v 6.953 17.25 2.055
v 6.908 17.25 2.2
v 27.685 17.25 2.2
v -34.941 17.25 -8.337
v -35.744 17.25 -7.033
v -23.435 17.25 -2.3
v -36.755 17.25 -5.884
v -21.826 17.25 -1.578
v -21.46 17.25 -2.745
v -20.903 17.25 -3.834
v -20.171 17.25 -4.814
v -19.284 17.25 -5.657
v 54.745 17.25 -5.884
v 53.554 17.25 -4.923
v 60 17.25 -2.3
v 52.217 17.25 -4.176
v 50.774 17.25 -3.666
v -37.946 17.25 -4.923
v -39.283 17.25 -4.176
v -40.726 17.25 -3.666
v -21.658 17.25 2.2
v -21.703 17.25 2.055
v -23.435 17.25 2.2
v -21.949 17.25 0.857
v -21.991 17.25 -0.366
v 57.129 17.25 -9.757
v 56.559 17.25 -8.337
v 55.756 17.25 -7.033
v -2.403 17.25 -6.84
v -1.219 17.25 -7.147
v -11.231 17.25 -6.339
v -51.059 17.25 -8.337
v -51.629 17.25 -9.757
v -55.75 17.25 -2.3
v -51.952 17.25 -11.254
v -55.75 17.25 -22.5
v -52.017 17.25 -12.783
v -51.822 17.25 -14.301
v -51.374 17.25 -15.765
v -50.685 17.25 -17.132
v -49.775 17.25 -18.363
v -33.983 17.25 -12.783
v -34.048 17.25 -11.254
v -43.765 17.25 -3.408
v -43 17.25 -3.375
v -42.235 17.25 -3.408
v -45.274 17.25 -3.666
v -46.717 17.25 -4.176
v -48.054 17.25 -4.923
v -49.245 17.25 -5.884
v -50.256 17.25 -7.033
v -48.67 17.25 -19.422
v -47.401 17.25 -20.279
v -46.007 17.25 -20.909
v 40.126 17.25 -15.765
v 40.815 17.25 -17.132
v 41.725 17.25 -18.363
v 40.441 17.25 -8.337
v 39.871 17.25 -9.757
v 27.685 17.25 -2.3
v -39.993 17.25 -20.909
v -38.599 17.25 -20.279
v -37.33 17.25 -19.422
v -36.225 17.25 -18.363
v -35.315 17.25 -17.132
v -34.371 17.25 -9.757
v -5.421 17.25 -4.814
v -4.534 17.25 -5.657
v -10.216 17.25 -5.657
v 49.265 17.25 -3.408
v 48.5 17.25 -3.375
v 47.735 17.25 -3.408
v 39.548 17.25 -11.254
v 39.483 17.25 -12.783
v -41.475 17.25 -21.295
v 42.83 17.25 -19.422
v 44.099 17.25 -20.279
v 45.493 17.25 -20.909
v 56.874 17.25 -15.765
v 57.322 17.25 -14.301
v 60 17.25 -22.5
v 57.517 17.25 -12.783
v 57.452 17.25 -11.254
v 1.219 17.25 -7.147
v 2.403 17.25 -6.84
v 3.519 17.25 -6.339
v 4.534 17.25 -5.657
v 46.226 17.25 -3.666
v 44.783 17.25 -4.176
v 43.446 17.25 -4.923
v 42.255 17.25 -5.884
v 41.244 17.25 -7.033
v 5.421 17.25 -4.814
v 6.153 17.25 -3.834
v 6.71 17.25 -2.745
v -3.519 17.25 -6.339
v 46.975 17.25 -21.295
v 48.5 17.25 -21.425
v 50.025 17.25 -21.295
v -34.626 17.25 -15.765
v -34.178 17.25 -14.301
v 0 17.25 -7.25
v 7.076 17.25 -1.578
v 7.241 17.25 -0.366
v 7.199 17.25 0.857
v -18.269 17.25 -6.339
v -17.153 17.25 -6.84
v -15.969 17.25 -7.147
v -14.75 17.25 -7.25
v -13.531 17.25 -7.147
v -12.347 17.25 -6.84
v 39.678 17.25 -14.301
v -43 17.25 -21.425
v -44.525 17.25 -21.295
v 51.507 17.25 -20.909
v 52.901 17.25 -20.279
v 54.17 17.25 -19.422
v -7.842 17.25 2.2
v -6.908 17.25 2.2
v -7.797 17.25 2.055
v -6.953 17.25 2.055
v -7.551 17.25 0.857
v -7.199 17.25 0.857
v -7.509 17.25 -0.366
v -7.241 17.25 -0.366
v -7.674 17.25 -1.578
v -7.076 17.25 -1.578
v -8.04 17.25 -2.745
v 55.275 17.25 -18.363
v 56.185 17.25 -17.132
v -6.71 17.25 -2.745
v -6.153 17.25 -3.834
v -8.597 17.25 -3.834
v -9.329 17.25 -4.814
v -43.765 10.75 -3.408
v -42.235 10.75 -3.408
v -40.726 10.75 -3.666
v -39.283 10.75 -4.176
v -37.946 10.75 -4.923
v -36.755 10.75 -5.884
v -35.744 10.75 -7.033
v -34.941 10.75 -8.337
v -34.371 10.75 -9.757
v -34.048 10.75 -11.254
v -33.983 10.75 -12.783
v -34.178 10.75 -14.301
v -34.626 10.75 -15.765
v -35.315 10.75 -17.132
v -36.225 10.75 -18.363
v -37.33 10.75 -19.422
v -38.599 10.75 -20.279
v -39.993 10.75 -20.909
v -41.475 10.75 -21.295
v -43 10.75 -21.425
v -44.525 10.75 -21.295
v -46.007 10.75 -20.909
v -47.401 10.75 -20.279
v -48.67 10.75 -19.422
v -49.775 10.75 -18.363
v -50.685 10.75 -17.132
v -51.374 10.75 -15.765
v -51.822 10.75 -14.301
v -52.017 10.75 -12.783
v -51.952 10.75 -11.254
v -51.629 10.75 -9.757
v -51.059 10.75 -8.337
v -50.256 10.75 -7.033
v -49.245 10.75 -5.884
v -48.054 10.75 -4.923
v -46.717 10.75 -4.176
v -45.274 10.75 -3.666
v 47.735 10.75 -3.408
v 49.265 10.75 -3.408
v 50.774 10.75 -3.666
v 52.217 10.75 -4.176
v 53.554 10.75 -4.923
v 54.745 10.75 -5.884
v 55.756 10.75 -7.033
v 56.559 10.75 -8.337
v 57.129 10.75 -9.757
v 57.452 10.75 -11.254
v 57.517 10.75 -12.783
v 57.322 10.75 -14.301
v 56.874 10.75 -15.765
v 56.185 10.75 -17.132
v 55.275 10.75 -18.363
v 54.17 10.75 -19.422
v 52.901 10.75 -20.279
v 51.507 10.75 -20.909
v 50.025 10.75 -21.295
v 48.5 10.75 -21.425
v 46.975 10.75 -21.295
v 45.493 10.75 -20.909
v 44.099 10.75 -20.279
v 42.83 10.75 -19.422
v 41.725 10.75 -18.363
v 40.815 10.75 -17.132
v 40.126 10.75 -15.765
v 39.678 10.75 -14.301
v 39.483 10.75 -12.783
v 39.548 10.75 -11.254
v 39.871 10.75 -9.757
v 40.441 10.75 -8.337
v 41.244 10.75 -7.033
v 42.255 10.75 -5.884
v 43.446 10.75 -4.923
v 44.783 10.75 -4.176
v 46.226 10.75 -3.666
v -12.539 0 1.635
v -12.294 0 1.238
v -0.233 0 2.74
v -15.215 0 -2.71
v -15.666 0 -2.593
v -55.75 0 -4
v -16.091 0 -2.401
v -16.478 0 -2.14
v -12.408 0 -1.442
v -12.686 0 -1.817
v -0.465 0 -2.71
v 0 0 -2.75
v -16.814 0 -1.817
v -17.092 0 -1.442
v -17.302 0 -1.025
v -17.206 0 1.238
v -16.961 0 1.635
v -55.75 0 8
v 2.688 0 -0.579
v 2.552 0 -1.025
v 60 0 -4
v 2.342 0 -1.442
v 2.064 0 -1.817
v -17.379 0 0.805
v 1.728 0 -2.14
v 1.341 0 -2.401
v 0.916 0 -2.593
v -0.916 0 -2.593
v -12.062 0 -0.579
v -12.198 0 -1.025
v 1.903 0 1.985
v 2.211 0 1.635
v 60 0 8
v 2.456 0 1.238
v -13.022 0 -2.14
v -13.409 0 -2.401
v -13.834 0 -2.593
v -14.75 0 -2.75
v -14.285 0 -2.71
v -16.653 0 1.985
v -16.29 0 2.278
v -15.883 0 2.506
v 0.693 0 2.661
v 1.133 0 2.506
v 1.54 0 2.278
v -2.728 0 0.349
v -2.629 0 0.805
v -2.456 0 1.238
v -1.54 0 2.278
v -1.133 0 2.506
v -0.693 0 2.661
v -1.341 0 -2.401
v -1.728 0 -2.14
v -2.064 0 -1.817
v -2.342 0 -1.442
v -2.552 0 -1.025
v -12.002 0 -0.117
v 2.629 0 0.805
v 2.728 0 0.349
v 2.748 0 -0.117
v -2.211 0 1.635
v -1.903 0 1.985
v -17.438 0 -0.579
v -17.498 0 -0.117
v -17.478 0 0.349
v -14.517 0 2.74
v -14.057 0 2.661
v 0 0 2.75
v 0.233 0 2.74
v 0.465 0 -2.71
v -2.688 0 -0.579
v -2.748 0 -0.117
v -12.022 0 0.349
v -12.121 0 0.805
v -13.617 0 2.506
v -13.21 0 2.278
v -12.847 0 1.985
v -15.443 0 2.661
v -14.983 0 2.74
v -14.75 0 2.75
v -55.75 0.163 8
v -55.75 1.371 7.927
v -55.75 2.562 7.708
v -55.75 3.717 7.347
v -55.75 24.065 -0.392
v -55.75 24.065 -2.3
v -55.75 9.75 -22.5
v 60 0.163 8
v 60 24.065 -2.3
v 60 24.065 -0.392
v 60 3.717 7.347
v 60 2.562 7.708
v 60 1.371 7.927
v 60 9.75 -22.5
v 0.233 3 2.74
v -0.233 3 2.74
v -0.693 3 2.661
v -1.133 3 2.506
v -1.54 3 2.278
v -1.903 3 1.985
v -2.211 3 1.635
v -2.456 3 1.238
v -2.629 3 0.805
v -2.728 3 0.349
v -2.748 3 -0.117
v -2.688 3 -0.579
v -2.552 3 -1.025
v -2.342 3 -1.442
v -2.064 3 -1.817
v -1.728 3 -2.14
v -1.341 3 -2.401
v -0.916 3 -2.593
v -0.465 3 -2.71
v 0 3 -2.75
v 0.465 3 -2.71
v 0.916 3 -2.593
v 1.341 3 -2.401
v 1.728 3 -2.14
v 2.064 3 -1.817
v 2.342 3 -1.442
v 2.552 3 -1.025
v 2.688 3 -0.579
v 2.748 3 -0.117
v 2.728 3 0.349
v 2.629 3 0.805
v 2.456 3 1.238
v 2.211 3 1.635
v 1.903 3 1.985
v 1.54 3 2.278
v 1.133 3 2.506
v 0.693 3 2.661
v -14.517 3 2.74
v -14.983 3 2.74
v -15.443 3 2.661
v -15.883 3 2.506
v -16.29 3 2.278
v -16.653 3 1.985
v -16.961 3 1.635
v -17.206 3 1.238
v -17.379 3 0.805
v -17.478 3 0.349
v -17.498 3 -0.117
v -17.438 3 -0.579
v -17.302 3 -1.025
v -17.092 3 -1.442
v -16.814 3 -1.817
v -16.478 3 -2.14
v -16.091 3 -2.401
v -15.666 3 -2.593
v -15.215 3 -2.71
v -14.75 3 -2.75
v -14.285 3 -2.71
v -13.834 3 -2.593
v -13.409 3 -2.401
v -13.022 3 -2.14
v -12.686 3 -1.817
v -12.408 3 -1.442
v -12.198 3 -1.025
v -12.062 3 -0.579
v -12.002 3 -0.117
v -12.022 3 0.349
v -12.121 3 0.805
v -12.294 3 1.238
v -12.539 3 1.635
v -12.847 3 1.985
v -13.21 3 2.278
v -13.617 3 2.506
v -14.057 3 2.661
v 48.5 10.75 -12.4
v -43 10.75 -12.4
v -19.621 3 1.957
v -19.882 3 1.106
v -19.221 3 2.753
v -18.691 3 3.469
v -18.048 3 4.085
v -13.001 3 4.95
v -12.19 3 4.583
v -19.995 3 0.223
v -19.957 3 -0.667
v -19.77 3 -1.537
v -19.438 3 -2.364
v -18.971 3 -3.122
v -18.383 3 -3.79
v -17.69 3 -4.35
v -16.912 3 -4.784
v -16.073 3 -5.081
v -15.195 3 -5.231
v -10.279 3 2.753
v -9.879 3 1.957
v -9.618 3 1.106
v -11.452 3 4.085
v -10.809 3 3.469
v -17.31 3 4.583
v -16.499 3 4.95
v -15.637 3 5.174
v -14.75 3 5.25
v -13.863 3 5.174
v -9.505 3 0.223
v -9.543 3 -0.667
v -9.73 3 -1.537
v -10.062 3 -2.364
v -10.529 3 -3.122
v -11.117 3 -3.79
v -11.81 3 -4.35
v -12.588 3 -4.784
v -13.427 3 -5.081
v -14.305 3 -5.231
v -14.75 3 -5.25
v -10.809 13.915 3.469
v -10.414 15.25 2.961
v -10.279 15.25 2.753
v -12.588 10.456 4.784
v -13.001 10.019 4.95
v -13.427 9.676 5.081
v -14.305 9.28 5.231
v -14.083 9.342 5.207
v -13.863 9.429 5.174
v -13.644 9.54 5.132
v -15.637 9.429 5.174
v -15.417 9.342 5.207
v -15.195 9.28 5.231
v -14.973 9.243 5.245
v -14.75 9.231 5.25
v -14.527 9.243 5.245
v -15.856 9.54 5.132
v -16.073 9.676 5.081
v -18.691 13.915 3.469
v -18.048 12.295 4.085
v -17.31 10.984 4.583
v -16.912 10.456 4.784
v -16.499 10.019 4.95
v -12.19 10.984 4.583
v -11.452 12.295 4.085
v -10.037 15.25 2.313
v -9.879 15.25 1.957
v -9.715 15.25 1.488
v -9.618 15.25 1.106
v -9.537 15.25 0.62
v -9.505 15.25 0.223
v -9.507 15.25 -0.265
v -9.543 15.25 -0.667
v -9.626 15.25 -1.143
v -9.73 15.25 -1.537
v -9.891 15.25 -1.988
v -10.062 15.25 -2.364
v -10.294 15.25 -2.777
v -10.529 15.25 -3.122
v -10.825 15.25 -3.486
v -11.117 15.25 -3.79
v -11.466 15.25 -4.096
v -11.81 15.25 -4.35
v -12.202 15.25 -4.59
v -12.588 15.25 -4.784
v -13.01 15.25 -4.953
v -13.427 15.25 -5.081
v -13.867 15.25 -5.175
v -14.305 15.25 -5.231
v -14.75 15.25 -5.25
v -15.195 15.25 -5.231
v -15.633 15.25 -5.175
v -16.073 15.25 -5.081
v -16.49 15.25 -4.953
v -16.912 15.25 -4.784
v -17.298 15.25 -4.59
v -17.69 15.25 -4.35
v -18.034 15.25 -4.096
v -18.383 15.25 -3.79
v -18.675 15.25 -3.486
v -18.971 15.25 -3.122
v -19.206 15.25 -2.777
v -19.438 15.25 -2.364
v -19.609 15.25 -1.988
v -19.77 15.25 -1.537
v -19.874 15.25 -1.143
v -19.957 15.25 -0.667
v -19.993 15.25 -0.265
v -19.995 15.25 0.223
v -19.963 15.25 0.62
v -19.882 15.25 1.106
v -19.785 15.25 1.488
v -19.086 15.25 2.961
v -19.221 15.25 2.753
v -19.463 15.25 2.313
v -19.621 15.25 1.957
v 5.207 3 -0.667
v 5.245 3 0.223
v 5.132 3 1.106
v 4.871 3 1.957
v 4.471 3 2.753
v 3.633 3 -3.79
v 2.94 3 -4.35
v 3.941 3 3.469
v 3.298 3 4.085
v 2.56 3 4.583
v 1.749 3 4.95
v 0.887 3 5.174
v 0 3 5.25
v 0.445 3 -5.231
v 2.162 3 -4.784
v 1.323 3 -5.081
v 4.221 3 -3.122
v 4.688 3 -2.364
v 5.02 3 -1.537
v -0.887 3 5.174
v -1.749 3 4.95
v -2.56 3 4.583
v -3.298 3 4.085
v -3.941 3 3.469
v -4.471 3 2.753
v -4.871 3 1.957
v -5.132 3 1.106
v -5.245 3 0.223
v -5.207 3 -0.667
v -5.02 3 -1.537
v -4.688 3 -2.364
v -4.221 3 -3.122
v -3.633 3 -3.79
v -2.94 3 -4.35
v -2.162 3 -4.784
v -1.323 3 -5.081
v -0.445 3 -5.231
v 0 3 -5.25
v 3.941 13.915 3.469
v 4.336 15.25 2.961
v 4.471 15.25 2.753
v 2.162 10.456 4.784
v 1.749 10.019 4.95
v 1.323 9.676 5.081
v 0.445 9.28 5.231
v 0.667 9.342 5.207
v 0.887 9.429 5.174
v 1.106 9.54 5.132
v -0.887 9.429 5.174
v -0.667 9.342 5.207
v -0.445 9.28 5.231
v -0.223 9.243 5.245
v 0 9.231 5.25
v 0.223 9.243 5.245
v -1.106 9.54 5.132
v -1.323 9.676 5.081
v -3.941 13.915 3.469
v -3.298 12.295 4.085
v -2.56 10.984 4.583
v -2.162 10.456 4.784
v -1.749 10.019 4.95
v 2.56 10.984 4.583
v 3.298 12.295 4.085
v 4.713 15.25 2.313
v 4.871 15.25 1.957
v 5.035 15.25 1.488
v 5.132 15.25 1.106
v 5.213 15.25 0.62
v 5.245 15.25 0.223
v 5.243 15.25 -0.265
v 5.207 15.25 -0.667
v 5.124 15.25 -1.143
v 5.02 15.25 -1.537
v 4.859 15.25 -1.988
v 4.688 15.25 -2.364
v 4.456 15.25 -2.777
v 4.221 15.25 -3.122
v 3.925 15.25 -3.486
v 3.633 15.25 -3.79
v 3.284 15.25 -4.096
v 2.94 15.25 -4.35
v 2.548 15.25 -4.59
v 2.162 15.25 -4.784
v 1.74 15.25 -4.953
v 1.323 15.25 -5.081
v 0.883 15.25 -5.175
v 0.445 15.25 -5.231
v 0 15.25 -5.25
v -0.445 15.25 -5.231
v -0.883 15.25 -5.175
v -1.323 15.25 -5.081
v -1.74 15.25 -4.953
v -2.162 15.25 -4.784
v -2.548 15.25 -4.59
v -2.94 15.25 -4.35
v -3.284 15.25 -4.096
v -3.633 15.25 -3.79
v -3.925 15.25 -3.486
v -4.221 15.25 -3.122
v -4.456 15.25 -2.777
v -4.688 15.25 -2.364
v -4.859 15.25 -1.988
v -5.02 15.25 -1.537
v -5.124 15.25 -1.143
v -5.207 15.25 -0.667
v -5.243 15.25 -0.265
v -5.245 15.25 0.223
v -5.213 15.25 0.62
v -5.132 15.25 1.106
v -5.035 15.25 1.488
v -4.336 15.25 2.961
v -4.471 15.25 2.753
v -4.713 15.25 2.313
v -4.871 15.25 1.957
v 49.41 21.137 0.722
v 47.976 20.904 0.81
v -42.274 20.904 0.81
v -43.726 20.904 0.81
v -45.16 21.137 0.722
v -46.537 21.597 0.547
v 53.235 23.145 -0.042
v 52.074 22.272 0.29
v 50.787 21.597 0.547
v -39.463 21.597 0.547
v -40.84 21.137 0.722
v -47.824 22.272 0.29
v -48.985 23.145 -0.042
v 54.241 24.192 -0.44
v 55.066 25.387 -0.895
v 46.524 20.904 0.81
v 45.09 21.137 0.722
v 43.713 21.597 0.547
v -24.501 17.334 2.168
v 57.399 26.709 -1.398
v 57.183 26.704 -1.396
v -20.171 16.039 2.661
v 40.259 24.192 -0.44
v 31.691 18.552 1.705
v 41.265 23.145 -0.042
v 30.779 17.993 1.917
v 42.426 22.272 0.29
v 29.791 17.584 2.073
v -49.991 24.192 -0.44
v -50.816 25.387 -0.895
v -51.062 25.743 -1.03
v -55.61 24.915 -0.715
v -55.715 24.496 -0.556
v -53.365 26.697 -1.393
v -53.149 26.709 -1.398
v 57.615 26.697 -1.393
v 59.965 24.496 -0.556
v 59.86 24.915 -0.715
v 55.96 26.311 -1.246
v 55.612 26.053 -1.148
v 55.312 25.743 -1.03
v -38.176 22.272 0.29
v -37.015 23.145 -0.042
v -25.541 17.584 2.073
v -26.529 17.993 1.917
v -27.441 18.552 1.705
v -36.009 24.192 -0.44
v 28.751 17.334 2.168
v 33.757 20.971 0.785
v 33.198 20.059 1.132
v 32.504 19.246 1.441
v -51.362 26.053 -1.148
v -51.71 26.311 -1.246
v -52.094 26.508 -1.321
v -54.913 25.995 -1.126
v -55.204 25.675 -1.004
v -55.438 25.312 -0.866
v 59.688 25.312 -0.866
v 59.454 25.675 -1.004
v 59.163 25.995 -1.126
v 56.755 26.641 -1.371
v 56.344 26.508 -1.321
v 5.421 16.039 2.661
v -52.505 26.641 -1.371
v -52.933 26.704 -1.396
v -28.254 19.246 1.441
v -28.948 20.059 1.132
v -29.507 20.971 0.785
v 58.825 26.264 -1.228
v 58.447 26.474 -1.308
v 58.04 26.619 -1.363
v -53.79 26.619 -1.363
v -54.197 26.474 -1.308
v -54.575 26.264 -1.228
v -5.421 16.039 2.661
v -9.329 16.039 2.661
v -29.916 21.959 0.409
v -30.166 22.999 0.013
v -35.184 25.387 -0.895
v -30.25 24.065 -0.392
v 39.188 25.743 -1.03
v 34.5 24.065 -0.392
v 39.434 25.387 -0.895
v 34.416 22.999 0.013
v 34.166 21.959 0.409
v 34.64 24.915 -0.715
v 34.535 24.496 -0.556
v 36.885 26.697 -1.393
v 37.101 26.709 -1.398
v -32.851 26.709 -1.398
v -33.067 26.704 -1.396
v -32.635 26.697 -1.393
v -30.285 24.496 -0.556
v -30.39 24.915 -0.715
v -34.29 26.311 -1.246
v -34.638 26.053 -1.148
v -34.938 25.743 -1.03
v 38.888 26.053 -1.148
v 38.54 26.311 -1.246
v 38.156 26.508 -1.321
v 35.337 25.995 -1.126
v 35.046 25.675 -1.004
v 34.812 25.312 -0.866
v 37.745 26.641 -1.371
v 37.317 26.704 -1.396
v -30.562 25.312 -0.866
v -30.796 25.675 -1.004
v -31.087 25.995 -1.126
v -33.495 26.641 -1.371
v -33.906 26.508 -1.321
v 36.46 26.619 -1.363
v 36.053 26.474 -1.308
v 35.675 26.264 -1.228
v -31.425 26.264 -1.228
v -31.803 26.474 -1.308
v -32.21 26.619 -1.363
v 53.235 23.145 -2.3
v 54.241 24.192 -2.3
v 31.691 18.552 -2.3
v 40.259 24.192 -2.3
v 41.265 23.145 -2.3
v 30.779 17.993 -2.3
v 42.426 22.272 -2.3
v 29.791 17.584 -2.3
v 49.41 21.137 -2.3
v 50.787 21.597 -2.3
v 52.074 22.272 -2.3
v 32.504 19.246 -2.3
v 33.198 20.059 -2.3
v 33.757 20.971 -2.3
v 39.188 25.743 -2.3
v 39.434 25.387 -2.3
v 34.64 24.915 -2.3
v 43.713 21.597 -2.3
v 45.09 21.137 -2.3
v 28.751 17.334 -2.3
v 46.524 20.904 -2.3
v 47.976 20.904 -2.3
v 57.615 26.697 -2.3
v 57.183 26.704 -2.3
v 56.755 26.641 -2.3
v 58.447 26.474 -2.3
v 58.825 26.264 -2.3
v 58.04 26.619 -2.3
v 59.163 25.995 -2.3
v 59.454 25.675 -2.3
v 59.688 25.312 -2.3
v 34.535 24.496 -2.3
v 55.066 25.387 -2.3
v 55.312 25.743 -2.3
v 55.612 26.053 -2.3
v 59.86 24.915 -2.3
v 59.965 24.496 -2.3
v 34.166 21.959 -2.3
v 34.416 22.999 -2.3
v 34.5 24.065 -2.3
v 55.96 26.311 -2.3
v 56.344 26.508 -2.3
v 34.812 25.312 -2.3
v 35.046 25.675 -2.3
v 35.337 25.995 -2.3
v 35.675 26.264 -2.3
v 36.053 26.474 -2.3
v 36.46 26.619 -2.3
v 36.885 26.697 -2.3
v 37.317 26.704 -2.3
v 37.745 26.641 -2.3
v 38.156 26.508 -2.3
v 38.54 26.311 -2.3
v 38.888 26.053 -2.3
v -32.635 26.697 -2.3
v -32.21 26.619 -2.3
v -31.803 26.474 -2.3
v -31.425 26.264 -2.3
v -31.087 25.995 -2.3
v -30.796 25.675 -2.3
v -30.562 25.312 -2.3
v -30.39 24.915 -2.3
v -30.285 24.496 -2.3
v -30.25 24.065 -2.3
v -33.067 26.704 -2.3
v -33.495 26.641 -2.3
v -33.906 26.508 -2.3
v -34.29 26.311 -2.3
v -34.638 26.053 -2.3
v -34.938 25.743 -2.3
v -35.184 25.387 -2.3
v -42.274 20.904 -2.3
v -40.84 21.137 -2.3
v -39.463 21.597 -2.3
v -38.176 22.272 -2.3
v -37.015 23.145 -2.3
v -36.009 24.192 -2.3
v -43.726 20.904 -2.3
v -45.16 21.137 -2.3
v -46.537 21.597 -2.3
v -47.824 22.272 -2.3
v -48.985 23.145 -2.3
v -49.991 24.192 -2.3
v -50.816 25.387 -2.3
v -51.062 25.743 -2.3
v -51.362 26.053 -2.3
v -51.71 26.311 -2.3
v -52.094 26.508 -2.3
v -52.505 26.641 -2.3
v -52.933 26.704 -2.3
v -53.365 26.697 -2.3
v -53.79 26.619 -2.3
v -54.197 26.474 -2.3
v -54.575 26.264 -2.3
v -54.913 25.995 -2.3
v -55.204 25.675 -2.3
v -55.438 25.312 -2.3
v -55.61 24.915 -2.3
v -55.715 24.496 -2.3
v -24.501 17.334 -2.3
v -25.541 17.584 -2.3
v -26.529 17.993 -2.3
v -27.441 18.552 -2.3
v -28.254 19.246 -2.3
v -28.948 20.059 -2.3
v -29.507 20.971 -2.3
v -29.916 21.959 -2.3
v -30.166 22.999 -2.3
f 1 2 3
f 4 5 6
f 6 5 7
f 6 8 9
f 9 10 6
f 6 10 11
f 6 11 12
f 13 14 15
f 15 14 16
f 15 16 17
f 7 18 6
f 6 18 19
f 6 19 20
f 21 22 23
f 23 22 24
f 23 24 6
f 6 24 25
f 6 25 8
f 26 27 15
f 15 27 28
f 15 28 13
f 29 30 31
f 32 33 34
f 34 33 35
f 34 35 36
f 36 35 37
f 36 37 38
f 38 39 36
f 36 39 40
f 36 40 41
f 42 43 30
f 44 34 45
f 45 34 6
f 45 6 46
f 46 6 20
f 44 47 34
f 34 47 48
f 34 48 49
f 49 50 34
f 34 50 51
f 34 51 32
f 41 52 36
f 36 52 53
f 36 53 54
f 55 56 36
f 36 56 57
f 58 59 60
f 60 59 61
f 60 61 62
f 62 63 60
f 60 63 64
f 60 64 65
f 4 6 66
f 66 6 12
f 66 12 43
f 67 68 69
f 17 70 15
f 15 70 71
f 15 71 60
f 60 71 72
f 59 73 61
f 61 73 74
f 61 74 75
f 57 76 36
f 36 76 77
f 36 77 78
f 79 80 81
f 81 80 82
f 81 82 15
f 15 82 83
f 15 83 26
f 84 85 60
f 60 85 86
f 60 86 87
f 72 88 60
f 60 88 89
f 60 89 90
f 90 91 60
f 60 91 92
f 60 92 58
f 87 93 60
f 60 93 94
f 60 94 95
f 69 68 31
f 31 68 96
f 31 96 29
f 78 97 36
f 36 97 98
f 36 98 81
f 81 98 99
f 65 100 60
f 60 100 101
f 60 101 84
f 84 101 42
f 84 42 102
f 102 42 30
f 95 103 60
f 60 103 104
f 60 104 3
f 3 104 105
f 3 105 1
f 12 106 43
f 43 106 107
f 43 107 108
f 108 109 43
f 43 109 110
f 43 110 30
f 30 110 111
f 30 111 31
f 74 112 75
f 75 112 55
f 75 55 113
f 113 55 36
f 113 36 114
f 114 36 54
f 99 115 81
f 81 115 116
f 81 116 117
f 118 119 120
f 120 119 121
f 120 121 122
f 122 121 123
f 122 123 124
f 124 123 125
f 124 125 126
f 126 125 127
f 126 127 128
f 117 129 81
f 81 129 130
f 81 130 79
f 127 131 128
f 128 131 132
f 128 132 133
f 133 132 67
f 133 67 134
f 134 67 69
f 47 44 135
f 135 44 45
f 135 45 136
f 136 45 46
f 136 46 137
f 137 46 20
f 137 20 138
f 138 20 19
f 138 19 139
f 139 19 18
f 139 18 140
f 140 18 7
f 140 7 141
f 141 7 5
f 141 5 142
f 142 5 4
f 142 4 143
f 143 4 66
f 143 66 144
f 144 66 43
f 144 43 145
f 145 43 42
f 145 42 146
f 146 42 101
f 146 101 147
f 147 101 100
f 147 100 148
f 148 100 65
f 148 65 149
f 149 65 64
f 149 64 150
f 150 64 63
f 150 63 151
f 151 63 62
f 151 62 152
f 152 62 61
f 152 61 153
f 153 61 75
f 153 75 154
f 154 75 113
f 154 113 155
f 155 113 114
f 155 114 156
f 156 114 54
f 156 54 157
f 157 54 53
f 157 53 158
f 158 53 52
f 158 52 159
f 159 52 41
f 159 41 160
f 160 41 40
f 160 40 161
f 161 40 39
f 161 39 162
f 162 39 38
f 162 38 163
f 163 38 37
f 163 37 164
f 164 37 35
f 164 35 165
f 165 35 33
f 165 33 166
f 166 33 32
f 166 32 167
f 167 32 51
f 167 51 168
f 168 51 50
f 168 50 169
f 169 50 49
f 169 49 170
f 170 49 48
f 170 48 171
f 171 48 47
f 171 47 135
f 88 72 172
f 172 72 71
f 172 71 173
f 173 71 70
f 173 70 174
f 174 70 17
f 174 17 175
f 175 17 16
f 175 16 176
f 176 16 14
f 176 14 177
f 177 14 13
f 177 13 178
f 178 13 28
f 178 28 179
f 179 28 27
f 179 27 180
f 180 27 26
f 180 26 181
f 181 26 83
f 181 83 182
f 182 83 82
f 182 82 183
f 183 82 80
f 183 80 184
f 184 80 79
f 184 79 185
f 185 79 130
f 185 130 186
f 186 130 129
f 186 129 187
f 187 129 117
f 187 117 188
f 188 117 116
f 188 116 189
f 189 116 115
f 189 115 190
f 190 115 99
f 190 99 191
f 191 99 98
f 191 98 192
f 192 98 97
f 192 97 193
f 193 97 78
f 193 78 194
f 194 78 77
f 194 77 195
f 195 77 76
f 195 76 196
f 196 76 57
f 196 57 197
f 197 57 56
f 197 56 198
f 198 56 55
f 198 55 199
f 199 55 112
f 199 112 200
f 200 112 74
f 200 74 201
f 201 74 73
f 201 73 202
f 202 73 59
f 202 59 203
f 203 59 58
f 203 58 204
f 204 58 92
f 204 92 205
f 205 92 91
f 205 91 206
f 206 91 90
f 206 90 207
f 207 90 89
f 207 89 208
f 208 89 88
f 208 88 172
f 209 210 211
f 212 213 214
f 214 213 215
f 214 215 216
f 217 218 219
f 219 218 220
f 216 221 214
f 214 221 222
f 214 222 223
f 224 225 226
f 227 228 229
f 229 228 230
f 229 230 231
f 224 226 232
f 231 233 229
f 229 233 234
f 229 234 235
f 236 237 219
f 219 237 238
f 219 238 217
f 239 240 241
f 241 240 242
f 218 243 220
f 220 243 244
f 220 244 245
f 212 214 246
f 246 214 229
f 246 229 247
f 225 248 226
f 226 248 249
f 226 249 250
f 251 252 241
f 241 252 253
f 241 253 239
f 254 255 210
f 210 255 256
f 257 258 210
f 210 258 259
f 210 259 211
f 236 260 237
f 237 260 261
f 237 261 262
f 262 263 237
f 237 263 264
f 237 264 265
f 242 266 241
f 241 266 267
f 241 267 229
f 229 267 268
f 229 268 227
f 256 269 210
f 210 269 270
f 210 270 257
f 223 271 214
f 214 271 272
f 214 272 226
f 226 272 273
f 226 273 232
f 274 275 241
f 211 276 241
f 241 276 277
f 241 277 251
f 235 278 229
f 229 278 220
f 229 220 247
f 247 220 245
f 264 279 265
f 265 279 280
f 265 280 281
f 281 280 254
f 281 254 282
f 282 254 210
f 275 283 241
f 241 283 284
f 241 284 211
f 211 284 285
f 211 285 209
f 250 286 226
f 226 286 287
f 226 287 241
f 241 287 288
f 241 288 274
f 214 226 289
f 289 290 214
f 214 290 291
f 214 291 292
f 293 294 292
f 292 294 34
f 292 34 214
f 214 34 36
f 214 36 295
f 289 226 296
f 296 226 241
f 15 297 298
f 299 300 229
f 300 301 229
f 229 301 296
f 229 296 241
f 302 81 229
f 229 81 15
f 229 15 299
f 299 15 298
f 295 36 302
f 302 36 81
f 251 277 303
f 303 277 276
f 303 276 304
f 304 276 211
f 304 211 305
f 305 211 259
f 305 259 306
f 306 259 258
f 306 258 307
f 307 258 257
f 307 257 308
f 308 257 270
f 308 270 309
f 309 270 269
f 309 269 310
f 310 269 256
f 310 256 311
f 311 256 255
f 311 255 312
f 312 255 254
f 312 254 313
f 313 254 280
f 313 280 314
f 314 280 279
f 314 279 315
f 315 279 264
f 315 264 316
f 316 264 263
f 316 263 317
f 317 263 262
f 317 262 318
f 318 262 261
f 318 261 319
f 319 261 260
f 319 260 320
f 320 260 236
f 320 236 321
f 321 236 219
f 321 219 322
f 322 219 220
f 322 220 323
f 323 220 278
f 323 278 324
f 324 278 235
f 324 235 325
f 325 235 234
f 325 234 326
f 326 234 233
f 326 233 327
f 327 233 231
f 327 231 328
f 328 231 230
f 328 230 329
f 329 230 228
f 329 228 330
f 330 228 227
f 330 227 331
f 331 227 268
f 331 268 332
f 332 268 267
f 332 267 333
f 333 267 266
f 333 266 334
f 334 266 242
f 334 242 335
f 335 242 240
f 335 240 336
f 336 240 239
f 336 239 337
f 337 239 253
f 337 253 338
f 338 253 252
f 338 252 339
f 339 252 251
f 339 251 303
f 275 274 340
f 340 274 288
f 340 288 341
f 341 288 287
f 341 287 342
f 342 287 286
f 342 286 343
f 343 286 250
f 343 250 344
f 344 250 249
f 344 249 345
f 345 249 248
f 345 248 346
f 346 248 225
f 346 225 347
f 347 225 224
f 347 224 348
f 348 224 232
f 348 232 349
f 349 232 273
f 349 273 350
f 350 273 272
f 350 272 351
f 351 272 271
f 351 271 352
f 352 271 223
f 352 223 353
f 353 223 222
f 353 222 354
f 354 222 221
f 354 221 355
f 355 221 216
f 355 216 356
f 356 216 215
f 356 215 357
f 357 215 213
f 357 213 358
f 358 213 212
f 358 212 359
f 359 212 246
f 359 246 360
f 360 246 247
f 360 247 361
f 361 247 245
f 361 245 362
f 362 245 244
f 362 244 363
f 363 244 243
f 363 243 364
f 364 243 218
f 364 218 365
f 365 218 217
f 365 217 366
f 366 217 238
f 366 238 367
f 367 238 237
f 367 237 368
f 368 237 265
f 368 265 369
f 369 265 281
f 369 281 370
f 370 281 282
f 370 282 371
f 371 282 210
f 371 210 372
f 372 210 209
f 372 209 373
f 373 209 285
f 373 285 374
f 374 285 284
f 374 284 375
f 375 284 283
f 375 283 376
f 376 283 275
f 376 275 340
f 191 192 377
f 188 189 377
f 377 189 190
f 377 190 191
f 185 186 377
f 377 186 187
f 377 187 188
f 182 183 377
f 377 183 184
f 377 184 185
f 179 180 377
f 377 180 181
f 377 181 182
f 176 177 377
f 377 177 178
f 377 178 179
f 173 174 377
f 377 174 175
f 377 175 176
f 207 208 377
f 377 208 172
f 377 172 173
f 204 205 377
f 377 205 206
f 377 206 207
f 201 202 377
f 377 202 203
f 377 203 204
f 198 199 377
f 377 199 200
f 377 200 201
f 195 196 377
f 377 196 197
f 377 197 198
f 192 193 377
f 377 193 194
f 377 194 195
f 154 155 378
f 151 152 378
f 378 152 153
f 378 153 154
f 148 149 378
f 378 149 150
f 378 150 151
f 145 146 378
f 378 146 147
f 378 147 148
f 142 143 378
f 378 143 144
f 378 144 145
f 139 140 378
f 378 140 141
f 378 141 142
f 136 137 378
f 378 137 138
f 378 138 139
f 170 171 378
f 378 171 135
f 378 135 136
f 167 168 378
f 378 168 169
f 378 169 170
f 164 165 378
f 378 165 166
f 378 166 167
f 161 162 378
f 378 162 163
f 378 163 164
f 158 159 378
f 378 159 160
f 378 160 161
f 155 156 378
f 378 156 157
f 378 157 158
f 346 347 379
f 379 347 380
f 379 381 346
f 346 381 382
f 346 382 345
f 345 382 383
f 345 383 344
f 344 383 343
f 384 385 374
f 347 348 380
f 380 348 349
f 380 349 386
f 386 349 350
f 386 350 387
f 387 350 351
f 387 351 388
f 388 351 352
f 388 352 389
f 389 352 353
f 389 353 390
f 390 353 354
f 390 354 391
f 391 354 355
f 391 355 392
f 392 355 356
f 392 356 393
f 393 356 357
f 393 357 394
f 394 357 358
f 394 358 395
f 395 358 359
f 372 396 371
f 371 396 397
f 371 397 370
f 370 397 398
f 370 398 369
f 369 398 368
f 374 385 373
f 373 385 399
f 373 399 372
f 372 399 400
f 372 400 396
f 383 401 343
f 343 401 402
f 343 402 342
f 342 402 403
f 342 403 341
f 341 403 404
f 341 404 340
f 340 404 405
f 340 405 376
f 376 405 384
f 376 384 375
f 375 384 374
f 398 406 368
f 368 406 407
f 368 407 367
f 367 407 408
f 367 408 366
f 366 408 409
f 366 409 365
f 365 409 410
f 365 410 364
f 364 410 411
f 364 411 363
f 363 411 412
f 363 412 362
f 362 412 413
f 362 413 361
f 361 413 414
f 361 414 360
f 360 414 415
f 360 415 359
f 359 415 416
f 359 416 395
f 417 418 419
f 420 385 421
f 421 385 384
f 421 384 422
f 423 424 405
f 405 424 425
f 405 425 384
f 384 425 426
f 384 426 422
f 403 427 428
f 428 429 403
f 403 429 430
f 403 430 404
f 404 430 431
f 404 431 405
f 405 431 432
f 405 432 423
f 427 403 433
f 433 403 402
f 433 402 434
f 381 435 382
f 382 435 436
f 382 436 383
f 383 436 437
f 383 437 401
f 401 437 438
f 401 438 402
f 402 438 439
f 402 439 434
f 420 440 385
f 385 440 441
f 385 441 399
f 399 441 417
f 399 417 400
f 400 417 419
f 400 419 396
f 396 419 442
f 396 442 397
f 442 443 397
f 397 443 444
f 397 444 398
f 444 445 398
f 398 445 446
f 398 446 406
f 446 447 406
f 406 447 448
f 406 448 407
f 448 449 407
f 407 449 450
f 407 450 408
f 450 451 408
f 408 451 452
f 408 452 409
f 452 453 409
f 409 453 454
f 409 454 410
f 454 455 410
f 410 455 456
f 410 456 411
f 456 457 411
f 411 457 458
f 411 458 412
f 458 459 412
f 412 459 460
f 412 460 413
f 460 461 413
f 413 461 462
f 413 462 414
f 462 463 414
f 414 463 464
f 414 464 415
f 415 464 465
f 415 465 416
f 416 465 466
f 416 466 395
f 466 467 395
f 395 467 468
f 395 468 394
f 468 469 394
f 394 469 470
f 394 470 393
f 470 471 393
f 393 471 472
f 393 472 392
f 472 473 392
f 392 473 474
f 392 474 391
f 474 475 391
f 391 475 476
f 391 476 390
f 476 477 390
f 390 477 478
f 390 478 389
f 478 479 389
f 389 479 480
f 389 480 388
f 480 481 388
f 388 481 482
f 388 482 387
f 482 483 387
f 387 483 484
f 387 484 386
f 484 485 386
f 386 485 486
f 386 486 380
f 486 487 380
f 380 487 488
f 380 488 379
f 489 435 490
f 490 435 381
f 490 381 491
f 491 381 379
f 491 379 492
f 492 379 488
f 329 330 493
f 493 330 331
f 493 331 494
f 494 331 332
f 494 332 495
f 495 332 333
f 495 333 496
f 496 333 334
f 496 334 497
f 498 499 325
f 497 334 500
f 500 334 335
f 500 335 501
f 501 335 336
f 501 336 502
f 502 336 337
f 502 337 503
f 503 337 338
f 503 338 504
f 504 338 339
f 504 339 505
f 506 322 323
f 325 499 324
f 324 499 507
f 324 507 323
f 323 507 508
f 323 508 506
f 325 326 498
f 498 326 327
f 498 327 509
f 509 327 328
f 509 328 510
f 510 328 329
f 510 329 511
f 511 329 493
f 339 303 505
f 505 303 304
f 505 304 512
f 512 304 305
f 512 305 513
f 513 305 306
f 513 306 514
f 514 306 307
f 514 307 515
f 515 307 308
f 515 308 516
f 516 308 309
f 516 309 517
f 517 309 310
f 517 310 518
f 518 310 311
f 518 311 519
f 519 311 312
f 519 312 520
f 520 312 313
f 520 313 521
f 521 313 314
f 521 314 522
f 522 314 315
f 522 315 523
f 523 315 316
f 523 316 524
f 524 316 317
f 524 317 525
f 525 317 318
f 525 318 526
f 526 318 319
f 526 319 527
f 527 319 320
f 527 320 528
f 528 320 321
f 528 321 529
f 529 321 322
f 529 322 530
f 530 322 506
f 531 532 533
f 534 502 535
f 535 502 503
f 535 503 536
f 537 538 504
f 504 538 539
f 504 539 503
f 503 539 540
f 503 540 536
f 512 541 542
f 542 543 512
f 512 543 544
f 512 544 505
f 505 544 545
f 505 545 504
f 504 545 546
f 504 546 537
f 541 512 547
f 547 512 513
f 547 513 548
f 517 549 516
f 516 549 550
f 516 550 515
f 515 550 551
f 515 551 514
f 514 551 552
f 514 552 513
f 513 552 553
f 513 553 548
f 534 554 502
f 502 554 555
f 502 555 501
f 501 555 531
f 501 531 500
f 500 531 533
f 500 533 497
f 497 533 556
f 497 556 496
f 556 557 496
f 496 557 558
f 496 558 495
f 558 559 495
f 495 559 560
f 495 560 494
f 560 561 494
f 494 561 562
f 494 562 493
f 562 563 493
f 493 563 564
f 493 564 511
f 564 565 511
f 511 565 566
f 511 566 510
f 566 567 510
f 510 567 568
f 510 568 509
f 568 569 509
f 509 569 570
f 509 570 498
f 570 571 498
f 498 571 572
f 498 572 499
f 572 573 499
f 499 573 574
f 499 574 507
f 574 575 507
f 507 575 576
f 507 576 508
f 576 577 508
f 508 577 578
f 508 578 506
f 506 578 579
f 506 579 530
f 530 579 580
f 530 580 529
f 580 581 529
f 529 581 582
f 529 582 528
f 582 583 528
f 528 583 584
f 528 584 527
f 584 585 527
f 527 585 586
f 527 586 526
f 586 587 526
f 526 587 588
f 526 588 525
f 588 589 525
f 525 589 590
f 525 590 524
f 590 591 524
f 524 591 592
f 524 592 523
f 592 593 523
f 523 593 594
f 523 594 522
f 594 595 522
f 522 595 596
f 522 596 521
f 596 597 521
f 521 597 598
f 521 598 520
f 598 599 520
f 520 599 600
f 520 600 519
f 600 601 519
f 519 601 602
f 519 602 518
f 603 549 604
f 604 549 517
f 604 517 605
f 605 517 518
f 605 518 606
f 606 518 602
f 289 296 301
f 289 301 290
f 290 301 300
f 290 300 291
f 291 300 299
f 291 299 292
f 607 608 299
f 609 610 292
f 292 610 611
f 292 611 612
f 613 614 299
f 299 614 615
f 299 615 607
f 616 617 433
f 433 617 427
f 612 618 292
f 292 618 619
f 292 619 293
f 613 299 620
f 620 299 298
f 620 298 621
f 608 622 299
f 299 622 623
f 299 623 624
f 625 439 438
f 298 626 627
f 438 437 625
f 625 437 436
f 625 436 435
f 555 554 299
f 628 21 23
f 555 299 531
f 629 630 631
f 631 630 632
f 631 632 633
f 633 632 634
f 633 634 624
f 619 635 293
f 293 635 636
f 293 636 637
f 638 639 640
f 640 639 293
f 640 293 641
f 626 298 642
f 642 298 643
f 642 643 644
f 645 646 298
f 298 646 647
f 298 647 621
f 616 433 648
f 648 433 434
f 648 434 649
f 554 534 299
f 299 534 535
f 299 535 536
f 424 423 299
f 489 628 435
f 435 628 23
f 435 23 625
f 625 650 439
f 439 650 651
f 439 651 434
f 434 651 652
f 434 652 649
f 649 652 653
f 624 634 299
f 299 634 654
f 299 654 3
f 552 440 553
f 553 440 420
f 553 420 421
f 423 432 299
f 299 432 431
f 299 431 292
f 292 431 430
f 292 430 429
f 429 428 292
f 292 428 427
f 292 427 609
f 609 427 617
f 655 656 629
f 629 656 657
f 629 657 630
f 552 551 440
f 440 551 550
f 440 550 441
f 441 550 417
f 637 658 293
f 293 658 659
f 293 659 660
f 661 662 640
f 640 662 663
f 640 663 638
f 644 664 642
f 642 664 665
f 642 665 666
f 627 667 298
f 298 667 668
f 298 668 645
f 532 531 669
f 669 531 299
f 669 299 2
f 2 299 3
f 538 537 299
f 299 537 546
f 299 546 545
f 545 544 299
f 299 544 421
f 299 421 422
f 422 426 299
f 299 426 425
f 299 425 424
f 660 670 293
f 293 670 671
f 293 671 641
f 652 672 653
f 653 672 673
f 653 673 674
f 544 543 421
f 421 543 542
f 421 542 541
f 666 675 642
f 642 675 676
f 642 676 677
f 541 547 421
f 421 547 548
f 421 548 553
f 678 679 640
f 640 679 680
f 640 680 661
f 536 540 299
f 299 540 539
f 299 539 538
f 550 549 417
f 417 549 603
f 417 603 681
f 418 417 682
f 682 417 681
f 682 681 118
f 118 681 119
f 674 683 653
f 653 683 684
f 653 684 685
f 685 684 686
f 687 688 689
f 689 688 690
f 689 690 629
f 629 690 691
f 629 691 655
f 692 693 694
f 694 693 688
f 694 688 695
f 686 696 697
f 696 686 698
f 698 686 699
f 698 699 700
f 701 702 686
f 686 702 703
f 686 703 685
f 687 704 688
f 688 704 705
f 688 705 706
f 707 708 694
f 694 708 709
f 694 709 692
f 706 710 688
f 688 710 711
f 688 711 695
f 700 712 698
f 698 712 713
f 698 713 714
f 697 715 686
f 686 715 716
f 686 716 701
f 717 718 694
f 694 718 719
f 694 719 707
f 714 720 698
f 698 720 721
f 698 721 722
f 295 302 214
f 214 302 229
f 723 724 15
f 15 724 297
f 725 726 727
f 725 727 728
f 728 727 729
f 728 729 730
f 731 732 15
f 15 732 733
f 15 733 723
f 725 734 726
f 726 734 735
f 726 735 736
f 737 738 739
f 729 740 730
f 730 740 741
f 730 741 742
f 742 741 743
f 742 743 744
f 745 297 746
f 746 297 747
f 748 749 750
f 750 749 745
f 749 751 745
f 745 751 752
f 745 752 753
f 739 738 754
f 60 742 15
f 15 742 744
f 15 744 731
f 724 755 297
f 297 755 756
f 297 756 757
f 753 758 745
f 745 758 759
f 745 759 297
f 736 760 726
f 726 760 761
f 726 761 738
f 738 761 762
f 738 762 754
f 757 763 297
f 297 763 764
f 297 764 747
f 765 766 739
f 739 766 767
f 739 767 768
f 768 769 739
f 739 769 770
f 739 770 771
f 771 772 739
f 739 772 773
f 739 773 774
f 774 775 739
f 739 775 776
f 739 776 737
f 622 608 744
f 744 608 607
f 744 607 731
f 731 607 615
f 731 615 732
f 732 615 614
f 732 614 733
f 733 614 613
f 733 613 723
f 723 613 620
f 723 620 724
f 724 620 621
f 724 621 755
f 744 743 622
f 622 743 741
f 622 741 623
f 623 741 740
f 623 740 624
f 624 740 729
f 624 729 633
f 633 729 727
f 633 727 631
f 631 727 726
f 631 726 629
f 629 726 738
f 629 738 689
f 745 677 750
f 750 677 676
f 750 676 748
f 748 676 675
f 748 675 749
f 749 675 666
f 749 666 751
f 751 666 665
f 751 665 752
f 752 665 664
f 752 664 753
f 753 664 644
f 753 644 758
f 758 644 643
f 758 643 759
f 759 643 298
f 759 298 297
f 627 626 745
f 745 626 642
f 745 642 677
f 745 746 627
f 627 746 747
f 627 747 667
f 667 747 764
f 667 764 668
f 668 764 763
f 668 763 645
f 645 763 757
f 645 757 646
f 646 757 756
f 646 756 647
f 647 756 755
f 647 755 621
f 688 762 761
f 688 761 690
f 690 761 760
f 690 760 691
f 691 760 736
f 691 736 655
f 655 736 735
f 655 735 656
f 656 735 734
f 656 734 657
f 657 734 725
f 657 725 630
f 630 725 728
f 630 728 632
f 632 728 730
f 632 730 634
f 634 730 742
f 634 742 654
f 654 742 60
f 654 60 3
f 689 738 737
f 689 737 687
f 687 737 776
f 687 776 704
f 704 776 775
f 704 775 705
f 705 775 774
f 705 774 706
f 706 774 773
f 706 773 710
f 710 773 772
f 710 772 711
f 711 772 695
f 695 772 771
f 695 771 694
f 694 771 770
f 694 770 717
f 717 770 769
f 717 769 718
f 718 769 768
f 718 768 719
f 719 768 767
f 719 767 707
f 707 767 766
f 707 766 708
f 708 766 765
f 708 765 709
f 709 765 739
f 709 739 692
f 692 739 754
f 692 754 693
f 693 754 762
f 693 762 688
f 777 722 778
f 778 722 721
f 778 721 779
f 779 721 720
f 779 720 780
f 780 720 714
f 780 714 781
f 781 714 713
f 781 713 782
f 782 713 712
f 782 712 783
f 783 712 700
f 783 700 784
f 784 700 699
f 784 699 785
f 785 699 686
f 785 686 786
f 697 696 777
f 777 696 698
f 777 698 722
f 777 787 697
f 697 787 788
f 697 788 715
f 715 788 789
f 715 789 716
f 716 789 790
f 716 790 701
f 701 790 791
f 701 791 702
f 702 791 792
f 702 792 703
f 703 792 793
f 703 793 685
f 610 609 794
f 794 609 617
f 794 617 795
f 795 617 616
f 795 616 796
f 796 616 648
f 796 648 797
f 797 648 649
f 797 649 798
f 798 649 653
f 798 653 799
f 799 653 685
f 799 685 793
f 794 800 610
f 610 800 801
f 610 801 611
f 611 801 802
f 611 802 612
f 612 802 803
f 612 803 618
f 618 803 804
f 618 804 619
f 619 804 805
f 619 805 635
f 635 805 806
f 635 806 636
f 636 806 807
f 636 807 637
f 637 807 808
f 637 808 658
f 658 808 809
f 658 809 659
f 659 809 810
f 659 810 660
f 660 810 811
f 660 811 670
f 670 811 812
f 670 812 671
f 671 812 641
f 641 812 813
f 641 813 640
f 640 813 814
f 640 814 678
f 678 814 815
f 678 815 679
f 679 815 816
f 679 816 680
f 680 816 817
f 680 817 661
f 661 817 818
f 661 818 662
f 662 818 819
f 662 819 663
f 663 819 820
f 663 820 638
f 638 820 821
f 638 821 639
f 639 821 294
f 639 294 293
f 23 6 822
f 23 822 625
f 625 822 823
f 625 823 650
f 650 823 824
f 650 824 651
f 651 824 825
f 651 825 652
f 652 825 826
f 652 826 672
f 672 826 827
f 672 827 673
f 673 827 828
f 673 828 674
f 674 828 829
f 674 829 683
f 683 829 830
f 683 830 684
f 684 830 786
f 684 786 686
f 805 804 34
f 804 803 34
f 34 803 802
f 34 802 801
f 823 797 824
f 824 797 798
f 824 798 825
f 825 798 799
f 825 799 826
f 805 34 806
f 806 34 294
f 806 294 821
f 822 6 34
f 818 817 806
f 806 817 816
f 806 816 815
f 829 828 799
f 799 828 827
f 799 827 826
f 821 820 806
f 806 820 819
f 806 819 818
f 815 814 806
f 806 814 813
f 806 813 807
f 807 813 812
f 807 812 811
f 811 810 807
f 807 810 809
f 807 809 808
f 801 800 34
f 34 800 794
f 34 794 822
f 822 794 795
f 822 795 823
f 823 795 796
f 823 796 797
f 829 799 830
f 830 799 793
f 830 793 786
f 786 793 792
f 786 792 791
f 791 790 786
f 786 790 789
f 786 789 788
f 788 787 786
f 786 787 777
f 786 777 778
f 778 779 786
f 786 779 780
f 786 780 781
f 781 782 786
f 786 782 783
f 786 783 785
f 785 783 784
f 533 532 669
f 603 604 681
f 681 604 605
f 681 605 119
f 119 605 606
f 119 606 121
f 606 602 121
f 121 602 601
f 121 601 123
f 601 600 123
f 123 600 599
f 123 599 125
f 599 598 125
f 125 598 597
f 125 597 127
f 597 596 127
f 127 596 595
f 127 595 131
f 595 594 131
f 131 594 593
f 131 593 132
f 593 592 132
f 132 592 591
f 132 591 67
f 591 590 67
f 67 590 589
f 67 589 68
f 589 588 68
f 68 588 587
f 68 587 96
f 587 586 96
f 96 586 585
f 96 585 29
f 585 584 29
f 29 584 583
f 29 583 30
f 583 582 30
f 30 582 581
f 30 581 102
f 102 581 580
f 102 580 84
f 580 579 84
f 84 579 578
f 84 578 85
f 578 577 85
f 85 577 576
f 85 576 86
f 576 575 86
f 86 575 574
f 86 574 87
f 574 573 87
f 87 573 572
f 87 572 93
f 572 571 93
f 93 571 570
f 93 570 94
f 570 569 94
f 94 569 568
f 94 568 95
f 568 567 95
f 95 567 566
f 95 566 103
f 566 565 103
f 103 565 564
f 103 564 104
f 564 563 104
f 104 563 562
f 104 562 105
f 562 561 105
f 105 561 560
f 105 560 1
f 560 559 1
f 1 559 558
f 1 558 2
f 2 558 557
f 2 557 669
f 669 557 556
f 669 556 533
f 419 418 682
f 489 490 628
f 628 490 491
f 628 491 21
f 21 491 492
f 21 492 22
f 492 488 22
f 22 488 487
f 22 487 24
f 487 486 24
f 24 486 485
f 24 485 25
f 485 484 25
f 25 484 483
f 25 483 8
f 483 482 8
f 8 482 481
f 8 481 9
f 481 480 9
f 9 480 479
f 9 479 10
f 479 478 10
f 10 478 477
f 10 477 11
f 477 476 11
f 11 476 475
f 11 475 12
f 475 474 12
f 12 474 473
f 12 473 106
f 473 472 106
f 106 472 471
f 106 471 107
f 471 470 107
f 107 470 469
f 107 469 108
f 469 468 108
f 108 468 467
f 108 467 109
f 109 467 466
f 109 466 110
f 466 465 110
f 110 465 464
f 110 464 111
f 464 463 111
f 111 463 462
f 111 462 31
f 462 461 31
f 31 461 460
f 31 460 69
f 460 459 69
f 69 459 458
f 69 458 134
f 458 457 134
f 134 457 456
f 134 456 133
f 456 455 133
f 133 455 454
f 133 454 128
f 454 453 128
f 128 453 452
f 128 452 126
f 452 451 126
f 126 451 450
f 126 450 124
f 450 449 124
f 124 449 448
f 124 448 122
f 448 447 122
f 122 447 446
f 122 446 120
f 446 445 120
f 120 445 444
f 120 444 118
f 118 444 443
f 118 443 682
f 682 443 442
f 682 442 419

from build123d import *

# Parameters (mm, degrees)
SKETCH1_W               = 115.75
SKETCH1_H               = 30.5
SKETCH1_R               = 2.75
SKETCH1_R_2             = 9.025
BOSS_EXTRUDE1_DEPTH     = 17.25
SKETCH3_R               = 9.025
BOSS_EXTRUDE2_DEPTH     = 10.75
SKETCH4_R               = 5.25
CUT_EXTRUDE1_DEPTH      = 14.25
CUT_EXTRUDE2_DEPTH      = 120.171619944
CUT_EXTRUDE2_DEPTH_BACK = 120.171619944
BOSS_EXTRUDE4_REACH     = 67.617
CHAMFER1_SIZE           = 2


with BuildPart() as part:
    # Sketch1 → Boss-Extrude1 (new body)
    with BuildSketch(Plane(origin=(0, 0, 0), x_dir=(1, 0, 0), z_dir=(0, 1, 0))):
        with Locations((2.125, 7.25)):
            Rectangle(SKETCH1_W, SKETCH1_H)
        with Locations(Location((0, 0, 0), (0, 0, 270))):
            Circle(SKETCH1_R, mode=Mode.SUBTRACT)
        with Locations(Location((-14.75, 0, 0), (0, 0, 270))):
            Circle(SKETCH1_R, mode=Mode.SUBTRACT)
        with Locations(Location((48.5, 12.4, 0), (0, 0, 270))):
            Circle(SKETCH1_R_2, mode=Mode.SUBTRACT)
        with Locations(Location((-43, 12.4, 0), (0, 0, 270))):
            Circle(SKETCH1_R_2, mode=Mode.SUBTRACT)
    extrude(amount=BOSS_EXTRUDE1_DEPTH)

    # Sketch3 → Boss-Extrude2 (add)
    with BuildSketch(Plane.XZ):
        with Locations(Location((48.5, -12.4, 0), (0, 0, 270))):
            Circle(SKETCH3_R)
        with Locations(Location((-43, -12.4, 0), (0, 0, 270))):
            Circle(SKETCH3_R)
    extrude(amount=-BOSS_EXTRUDE2_DEPTH)

    # Sketch4 → Cut-Extrude1 (cut)
    with BuildSketch(Plane(origin=(0, 17.25, 0), x_dir=(1, 0, 0), z_dir=(0, 1, 0))):
        with Locations(Location((-14.75, 0, 0), (0, 0, 270))):
            Circle(SKETCH4_R)
        with Locations(Location((0, 0, 0), (0, 0, 270))):
            Circle(SKETCH4_R)
    extrude(amount=-CUT_EXTRUDE1_DEPTH, mode=Mode.SUBTRACT)

    # Sketch8 → Cut-Extrude2 (cut, two sides: drawn at the far end of the back side and taken through both)
    with BuildSketch(Plane(origin=(60, 0, 0), x_dir=(0, 0, -1), z_dir=(1, 0, 0)).offset(-CUT_EXTRUDE2_DEPTH_BACK)):
        with BuildLine():
            Line((-2.2, 17.25), (-7.34681784, 3.717418611))
            ThreePointArc((-7.34681784, 3.717418611), (-7.835348962, 1.969746414), (-8, 0.162563302))
            Line((-8, 0.162563302), (-8, 17.25))
            Line((-8, 17.25), (-2.2, 17.25))
        make_face()
        Polygon((22.5, 9.75), (4, 0), (22.5, 0), align=None)
    extrude(amount=CUT_EXTRUDE2_DEPTH + CUT_EXTRUDE2_DEPTH_BACK, mode=Mode.SUBTRACT)

    # Boss-Extrude4: up to this plane
    boss_extrude4_end = Plane(origin=(-55.75, 17.25, 2.2), z_dir=(0, -0.35548553095217983, -0.9346817839690934))
    # Sketch7 → Boss-Extrude4 (add, up to the surface)
    with BuildSketch(Plane.XY.offset(-2.3), mode=Mode.PRIVATE) as boss_extrude4_sk1:
        with BuildLine():
            ThreePointArc((39.434120731, 25.3875), (36.45982129, 26.619495167), (34.5, 24.065406335))
            ThreePointArc((34.5, 24.065406335), (32.503813701, 19.246186299), (27.684593665, 17.25))
            Line((27.684593665, 17.25), (60, 17.25))
            Line((60, 17.25), (60, 24.065406335))
            ThreePointArc((60, 24.065406335), (58.04017871, 26.619495167), (55.065879269, 25.3875))
            ThreePointArc((55.065879269, 25.3875), (47.25, 20.875), (39.434120731, 25.3875))
        make_face()
    boss_extrude4_tool1 = split(extrude(boss_extrude4_sk1.sketch, amount=BOSS_EXTRUDE4_REACH, mode=Mode.PRIVATE), bisect_by=boss_extrude4_end, keep=Keep.BOTH, mode=Mode.PRIVATE)
    add(boss_extrude4_tool1.solids().sort_by_distance((46.440425, 20.76167, -2.3))[0])
    # Sketch7 → Boss-Extrude4 (add, up to the surface)
    with BuildSketch(Plane.XY.offset(-2.3), mode=Mode.PRIVATE) as boss_extrude4_sk2:
        with BuildLine():
            ThreePointArc((-30.25, 24.065406335), (-28.253813701, 19.246186299), (-23.434593665, 17.25))
            Line((-23.434593665, 17.25), (-55.75, 17.25))
            Line((-55.75, 17.25), (-55.75, 24.065406335))
            ThreePointArc((-55.75, 24.065406335), (-53.79017871, 26.619495167), (-50.815879269, 25.3875))
            ThreePointArc((-50.815879269, 25.3875), (-43, 20.875), (-35.184120731, 25.3875))
            ThreePointArc((-35.184120731, 25.3875), (-32.20982129, 26.619495167), (-30.25, 24.065406335))
        make_face()
    boss_extrude4_tool2 = split(extrude(boss_extrude4_sk2.sketch, amount=BOSS_EXTRUDE4_REACH, mode=Mode.PRIVATE), bisect_by=boss_extrude4_end, keep=Keep.BOTH, mode=Mode.PRIVATE)
    add(boss_extrude4_tool2.solids().sort_by_distance((-42.190425, 20.76167, -2.3))[0])

    # Chamfer1
    chamfer1_edges = [part.edges().sort_by_distance(p)[0] for p in [
        (0, 17.25, -5.25),
        (-14.75, 17.25, -5.25),
    ]]
    chamfer(chamfer1_edges, length=CHAMFER1_SIZE)


solid = part.part
